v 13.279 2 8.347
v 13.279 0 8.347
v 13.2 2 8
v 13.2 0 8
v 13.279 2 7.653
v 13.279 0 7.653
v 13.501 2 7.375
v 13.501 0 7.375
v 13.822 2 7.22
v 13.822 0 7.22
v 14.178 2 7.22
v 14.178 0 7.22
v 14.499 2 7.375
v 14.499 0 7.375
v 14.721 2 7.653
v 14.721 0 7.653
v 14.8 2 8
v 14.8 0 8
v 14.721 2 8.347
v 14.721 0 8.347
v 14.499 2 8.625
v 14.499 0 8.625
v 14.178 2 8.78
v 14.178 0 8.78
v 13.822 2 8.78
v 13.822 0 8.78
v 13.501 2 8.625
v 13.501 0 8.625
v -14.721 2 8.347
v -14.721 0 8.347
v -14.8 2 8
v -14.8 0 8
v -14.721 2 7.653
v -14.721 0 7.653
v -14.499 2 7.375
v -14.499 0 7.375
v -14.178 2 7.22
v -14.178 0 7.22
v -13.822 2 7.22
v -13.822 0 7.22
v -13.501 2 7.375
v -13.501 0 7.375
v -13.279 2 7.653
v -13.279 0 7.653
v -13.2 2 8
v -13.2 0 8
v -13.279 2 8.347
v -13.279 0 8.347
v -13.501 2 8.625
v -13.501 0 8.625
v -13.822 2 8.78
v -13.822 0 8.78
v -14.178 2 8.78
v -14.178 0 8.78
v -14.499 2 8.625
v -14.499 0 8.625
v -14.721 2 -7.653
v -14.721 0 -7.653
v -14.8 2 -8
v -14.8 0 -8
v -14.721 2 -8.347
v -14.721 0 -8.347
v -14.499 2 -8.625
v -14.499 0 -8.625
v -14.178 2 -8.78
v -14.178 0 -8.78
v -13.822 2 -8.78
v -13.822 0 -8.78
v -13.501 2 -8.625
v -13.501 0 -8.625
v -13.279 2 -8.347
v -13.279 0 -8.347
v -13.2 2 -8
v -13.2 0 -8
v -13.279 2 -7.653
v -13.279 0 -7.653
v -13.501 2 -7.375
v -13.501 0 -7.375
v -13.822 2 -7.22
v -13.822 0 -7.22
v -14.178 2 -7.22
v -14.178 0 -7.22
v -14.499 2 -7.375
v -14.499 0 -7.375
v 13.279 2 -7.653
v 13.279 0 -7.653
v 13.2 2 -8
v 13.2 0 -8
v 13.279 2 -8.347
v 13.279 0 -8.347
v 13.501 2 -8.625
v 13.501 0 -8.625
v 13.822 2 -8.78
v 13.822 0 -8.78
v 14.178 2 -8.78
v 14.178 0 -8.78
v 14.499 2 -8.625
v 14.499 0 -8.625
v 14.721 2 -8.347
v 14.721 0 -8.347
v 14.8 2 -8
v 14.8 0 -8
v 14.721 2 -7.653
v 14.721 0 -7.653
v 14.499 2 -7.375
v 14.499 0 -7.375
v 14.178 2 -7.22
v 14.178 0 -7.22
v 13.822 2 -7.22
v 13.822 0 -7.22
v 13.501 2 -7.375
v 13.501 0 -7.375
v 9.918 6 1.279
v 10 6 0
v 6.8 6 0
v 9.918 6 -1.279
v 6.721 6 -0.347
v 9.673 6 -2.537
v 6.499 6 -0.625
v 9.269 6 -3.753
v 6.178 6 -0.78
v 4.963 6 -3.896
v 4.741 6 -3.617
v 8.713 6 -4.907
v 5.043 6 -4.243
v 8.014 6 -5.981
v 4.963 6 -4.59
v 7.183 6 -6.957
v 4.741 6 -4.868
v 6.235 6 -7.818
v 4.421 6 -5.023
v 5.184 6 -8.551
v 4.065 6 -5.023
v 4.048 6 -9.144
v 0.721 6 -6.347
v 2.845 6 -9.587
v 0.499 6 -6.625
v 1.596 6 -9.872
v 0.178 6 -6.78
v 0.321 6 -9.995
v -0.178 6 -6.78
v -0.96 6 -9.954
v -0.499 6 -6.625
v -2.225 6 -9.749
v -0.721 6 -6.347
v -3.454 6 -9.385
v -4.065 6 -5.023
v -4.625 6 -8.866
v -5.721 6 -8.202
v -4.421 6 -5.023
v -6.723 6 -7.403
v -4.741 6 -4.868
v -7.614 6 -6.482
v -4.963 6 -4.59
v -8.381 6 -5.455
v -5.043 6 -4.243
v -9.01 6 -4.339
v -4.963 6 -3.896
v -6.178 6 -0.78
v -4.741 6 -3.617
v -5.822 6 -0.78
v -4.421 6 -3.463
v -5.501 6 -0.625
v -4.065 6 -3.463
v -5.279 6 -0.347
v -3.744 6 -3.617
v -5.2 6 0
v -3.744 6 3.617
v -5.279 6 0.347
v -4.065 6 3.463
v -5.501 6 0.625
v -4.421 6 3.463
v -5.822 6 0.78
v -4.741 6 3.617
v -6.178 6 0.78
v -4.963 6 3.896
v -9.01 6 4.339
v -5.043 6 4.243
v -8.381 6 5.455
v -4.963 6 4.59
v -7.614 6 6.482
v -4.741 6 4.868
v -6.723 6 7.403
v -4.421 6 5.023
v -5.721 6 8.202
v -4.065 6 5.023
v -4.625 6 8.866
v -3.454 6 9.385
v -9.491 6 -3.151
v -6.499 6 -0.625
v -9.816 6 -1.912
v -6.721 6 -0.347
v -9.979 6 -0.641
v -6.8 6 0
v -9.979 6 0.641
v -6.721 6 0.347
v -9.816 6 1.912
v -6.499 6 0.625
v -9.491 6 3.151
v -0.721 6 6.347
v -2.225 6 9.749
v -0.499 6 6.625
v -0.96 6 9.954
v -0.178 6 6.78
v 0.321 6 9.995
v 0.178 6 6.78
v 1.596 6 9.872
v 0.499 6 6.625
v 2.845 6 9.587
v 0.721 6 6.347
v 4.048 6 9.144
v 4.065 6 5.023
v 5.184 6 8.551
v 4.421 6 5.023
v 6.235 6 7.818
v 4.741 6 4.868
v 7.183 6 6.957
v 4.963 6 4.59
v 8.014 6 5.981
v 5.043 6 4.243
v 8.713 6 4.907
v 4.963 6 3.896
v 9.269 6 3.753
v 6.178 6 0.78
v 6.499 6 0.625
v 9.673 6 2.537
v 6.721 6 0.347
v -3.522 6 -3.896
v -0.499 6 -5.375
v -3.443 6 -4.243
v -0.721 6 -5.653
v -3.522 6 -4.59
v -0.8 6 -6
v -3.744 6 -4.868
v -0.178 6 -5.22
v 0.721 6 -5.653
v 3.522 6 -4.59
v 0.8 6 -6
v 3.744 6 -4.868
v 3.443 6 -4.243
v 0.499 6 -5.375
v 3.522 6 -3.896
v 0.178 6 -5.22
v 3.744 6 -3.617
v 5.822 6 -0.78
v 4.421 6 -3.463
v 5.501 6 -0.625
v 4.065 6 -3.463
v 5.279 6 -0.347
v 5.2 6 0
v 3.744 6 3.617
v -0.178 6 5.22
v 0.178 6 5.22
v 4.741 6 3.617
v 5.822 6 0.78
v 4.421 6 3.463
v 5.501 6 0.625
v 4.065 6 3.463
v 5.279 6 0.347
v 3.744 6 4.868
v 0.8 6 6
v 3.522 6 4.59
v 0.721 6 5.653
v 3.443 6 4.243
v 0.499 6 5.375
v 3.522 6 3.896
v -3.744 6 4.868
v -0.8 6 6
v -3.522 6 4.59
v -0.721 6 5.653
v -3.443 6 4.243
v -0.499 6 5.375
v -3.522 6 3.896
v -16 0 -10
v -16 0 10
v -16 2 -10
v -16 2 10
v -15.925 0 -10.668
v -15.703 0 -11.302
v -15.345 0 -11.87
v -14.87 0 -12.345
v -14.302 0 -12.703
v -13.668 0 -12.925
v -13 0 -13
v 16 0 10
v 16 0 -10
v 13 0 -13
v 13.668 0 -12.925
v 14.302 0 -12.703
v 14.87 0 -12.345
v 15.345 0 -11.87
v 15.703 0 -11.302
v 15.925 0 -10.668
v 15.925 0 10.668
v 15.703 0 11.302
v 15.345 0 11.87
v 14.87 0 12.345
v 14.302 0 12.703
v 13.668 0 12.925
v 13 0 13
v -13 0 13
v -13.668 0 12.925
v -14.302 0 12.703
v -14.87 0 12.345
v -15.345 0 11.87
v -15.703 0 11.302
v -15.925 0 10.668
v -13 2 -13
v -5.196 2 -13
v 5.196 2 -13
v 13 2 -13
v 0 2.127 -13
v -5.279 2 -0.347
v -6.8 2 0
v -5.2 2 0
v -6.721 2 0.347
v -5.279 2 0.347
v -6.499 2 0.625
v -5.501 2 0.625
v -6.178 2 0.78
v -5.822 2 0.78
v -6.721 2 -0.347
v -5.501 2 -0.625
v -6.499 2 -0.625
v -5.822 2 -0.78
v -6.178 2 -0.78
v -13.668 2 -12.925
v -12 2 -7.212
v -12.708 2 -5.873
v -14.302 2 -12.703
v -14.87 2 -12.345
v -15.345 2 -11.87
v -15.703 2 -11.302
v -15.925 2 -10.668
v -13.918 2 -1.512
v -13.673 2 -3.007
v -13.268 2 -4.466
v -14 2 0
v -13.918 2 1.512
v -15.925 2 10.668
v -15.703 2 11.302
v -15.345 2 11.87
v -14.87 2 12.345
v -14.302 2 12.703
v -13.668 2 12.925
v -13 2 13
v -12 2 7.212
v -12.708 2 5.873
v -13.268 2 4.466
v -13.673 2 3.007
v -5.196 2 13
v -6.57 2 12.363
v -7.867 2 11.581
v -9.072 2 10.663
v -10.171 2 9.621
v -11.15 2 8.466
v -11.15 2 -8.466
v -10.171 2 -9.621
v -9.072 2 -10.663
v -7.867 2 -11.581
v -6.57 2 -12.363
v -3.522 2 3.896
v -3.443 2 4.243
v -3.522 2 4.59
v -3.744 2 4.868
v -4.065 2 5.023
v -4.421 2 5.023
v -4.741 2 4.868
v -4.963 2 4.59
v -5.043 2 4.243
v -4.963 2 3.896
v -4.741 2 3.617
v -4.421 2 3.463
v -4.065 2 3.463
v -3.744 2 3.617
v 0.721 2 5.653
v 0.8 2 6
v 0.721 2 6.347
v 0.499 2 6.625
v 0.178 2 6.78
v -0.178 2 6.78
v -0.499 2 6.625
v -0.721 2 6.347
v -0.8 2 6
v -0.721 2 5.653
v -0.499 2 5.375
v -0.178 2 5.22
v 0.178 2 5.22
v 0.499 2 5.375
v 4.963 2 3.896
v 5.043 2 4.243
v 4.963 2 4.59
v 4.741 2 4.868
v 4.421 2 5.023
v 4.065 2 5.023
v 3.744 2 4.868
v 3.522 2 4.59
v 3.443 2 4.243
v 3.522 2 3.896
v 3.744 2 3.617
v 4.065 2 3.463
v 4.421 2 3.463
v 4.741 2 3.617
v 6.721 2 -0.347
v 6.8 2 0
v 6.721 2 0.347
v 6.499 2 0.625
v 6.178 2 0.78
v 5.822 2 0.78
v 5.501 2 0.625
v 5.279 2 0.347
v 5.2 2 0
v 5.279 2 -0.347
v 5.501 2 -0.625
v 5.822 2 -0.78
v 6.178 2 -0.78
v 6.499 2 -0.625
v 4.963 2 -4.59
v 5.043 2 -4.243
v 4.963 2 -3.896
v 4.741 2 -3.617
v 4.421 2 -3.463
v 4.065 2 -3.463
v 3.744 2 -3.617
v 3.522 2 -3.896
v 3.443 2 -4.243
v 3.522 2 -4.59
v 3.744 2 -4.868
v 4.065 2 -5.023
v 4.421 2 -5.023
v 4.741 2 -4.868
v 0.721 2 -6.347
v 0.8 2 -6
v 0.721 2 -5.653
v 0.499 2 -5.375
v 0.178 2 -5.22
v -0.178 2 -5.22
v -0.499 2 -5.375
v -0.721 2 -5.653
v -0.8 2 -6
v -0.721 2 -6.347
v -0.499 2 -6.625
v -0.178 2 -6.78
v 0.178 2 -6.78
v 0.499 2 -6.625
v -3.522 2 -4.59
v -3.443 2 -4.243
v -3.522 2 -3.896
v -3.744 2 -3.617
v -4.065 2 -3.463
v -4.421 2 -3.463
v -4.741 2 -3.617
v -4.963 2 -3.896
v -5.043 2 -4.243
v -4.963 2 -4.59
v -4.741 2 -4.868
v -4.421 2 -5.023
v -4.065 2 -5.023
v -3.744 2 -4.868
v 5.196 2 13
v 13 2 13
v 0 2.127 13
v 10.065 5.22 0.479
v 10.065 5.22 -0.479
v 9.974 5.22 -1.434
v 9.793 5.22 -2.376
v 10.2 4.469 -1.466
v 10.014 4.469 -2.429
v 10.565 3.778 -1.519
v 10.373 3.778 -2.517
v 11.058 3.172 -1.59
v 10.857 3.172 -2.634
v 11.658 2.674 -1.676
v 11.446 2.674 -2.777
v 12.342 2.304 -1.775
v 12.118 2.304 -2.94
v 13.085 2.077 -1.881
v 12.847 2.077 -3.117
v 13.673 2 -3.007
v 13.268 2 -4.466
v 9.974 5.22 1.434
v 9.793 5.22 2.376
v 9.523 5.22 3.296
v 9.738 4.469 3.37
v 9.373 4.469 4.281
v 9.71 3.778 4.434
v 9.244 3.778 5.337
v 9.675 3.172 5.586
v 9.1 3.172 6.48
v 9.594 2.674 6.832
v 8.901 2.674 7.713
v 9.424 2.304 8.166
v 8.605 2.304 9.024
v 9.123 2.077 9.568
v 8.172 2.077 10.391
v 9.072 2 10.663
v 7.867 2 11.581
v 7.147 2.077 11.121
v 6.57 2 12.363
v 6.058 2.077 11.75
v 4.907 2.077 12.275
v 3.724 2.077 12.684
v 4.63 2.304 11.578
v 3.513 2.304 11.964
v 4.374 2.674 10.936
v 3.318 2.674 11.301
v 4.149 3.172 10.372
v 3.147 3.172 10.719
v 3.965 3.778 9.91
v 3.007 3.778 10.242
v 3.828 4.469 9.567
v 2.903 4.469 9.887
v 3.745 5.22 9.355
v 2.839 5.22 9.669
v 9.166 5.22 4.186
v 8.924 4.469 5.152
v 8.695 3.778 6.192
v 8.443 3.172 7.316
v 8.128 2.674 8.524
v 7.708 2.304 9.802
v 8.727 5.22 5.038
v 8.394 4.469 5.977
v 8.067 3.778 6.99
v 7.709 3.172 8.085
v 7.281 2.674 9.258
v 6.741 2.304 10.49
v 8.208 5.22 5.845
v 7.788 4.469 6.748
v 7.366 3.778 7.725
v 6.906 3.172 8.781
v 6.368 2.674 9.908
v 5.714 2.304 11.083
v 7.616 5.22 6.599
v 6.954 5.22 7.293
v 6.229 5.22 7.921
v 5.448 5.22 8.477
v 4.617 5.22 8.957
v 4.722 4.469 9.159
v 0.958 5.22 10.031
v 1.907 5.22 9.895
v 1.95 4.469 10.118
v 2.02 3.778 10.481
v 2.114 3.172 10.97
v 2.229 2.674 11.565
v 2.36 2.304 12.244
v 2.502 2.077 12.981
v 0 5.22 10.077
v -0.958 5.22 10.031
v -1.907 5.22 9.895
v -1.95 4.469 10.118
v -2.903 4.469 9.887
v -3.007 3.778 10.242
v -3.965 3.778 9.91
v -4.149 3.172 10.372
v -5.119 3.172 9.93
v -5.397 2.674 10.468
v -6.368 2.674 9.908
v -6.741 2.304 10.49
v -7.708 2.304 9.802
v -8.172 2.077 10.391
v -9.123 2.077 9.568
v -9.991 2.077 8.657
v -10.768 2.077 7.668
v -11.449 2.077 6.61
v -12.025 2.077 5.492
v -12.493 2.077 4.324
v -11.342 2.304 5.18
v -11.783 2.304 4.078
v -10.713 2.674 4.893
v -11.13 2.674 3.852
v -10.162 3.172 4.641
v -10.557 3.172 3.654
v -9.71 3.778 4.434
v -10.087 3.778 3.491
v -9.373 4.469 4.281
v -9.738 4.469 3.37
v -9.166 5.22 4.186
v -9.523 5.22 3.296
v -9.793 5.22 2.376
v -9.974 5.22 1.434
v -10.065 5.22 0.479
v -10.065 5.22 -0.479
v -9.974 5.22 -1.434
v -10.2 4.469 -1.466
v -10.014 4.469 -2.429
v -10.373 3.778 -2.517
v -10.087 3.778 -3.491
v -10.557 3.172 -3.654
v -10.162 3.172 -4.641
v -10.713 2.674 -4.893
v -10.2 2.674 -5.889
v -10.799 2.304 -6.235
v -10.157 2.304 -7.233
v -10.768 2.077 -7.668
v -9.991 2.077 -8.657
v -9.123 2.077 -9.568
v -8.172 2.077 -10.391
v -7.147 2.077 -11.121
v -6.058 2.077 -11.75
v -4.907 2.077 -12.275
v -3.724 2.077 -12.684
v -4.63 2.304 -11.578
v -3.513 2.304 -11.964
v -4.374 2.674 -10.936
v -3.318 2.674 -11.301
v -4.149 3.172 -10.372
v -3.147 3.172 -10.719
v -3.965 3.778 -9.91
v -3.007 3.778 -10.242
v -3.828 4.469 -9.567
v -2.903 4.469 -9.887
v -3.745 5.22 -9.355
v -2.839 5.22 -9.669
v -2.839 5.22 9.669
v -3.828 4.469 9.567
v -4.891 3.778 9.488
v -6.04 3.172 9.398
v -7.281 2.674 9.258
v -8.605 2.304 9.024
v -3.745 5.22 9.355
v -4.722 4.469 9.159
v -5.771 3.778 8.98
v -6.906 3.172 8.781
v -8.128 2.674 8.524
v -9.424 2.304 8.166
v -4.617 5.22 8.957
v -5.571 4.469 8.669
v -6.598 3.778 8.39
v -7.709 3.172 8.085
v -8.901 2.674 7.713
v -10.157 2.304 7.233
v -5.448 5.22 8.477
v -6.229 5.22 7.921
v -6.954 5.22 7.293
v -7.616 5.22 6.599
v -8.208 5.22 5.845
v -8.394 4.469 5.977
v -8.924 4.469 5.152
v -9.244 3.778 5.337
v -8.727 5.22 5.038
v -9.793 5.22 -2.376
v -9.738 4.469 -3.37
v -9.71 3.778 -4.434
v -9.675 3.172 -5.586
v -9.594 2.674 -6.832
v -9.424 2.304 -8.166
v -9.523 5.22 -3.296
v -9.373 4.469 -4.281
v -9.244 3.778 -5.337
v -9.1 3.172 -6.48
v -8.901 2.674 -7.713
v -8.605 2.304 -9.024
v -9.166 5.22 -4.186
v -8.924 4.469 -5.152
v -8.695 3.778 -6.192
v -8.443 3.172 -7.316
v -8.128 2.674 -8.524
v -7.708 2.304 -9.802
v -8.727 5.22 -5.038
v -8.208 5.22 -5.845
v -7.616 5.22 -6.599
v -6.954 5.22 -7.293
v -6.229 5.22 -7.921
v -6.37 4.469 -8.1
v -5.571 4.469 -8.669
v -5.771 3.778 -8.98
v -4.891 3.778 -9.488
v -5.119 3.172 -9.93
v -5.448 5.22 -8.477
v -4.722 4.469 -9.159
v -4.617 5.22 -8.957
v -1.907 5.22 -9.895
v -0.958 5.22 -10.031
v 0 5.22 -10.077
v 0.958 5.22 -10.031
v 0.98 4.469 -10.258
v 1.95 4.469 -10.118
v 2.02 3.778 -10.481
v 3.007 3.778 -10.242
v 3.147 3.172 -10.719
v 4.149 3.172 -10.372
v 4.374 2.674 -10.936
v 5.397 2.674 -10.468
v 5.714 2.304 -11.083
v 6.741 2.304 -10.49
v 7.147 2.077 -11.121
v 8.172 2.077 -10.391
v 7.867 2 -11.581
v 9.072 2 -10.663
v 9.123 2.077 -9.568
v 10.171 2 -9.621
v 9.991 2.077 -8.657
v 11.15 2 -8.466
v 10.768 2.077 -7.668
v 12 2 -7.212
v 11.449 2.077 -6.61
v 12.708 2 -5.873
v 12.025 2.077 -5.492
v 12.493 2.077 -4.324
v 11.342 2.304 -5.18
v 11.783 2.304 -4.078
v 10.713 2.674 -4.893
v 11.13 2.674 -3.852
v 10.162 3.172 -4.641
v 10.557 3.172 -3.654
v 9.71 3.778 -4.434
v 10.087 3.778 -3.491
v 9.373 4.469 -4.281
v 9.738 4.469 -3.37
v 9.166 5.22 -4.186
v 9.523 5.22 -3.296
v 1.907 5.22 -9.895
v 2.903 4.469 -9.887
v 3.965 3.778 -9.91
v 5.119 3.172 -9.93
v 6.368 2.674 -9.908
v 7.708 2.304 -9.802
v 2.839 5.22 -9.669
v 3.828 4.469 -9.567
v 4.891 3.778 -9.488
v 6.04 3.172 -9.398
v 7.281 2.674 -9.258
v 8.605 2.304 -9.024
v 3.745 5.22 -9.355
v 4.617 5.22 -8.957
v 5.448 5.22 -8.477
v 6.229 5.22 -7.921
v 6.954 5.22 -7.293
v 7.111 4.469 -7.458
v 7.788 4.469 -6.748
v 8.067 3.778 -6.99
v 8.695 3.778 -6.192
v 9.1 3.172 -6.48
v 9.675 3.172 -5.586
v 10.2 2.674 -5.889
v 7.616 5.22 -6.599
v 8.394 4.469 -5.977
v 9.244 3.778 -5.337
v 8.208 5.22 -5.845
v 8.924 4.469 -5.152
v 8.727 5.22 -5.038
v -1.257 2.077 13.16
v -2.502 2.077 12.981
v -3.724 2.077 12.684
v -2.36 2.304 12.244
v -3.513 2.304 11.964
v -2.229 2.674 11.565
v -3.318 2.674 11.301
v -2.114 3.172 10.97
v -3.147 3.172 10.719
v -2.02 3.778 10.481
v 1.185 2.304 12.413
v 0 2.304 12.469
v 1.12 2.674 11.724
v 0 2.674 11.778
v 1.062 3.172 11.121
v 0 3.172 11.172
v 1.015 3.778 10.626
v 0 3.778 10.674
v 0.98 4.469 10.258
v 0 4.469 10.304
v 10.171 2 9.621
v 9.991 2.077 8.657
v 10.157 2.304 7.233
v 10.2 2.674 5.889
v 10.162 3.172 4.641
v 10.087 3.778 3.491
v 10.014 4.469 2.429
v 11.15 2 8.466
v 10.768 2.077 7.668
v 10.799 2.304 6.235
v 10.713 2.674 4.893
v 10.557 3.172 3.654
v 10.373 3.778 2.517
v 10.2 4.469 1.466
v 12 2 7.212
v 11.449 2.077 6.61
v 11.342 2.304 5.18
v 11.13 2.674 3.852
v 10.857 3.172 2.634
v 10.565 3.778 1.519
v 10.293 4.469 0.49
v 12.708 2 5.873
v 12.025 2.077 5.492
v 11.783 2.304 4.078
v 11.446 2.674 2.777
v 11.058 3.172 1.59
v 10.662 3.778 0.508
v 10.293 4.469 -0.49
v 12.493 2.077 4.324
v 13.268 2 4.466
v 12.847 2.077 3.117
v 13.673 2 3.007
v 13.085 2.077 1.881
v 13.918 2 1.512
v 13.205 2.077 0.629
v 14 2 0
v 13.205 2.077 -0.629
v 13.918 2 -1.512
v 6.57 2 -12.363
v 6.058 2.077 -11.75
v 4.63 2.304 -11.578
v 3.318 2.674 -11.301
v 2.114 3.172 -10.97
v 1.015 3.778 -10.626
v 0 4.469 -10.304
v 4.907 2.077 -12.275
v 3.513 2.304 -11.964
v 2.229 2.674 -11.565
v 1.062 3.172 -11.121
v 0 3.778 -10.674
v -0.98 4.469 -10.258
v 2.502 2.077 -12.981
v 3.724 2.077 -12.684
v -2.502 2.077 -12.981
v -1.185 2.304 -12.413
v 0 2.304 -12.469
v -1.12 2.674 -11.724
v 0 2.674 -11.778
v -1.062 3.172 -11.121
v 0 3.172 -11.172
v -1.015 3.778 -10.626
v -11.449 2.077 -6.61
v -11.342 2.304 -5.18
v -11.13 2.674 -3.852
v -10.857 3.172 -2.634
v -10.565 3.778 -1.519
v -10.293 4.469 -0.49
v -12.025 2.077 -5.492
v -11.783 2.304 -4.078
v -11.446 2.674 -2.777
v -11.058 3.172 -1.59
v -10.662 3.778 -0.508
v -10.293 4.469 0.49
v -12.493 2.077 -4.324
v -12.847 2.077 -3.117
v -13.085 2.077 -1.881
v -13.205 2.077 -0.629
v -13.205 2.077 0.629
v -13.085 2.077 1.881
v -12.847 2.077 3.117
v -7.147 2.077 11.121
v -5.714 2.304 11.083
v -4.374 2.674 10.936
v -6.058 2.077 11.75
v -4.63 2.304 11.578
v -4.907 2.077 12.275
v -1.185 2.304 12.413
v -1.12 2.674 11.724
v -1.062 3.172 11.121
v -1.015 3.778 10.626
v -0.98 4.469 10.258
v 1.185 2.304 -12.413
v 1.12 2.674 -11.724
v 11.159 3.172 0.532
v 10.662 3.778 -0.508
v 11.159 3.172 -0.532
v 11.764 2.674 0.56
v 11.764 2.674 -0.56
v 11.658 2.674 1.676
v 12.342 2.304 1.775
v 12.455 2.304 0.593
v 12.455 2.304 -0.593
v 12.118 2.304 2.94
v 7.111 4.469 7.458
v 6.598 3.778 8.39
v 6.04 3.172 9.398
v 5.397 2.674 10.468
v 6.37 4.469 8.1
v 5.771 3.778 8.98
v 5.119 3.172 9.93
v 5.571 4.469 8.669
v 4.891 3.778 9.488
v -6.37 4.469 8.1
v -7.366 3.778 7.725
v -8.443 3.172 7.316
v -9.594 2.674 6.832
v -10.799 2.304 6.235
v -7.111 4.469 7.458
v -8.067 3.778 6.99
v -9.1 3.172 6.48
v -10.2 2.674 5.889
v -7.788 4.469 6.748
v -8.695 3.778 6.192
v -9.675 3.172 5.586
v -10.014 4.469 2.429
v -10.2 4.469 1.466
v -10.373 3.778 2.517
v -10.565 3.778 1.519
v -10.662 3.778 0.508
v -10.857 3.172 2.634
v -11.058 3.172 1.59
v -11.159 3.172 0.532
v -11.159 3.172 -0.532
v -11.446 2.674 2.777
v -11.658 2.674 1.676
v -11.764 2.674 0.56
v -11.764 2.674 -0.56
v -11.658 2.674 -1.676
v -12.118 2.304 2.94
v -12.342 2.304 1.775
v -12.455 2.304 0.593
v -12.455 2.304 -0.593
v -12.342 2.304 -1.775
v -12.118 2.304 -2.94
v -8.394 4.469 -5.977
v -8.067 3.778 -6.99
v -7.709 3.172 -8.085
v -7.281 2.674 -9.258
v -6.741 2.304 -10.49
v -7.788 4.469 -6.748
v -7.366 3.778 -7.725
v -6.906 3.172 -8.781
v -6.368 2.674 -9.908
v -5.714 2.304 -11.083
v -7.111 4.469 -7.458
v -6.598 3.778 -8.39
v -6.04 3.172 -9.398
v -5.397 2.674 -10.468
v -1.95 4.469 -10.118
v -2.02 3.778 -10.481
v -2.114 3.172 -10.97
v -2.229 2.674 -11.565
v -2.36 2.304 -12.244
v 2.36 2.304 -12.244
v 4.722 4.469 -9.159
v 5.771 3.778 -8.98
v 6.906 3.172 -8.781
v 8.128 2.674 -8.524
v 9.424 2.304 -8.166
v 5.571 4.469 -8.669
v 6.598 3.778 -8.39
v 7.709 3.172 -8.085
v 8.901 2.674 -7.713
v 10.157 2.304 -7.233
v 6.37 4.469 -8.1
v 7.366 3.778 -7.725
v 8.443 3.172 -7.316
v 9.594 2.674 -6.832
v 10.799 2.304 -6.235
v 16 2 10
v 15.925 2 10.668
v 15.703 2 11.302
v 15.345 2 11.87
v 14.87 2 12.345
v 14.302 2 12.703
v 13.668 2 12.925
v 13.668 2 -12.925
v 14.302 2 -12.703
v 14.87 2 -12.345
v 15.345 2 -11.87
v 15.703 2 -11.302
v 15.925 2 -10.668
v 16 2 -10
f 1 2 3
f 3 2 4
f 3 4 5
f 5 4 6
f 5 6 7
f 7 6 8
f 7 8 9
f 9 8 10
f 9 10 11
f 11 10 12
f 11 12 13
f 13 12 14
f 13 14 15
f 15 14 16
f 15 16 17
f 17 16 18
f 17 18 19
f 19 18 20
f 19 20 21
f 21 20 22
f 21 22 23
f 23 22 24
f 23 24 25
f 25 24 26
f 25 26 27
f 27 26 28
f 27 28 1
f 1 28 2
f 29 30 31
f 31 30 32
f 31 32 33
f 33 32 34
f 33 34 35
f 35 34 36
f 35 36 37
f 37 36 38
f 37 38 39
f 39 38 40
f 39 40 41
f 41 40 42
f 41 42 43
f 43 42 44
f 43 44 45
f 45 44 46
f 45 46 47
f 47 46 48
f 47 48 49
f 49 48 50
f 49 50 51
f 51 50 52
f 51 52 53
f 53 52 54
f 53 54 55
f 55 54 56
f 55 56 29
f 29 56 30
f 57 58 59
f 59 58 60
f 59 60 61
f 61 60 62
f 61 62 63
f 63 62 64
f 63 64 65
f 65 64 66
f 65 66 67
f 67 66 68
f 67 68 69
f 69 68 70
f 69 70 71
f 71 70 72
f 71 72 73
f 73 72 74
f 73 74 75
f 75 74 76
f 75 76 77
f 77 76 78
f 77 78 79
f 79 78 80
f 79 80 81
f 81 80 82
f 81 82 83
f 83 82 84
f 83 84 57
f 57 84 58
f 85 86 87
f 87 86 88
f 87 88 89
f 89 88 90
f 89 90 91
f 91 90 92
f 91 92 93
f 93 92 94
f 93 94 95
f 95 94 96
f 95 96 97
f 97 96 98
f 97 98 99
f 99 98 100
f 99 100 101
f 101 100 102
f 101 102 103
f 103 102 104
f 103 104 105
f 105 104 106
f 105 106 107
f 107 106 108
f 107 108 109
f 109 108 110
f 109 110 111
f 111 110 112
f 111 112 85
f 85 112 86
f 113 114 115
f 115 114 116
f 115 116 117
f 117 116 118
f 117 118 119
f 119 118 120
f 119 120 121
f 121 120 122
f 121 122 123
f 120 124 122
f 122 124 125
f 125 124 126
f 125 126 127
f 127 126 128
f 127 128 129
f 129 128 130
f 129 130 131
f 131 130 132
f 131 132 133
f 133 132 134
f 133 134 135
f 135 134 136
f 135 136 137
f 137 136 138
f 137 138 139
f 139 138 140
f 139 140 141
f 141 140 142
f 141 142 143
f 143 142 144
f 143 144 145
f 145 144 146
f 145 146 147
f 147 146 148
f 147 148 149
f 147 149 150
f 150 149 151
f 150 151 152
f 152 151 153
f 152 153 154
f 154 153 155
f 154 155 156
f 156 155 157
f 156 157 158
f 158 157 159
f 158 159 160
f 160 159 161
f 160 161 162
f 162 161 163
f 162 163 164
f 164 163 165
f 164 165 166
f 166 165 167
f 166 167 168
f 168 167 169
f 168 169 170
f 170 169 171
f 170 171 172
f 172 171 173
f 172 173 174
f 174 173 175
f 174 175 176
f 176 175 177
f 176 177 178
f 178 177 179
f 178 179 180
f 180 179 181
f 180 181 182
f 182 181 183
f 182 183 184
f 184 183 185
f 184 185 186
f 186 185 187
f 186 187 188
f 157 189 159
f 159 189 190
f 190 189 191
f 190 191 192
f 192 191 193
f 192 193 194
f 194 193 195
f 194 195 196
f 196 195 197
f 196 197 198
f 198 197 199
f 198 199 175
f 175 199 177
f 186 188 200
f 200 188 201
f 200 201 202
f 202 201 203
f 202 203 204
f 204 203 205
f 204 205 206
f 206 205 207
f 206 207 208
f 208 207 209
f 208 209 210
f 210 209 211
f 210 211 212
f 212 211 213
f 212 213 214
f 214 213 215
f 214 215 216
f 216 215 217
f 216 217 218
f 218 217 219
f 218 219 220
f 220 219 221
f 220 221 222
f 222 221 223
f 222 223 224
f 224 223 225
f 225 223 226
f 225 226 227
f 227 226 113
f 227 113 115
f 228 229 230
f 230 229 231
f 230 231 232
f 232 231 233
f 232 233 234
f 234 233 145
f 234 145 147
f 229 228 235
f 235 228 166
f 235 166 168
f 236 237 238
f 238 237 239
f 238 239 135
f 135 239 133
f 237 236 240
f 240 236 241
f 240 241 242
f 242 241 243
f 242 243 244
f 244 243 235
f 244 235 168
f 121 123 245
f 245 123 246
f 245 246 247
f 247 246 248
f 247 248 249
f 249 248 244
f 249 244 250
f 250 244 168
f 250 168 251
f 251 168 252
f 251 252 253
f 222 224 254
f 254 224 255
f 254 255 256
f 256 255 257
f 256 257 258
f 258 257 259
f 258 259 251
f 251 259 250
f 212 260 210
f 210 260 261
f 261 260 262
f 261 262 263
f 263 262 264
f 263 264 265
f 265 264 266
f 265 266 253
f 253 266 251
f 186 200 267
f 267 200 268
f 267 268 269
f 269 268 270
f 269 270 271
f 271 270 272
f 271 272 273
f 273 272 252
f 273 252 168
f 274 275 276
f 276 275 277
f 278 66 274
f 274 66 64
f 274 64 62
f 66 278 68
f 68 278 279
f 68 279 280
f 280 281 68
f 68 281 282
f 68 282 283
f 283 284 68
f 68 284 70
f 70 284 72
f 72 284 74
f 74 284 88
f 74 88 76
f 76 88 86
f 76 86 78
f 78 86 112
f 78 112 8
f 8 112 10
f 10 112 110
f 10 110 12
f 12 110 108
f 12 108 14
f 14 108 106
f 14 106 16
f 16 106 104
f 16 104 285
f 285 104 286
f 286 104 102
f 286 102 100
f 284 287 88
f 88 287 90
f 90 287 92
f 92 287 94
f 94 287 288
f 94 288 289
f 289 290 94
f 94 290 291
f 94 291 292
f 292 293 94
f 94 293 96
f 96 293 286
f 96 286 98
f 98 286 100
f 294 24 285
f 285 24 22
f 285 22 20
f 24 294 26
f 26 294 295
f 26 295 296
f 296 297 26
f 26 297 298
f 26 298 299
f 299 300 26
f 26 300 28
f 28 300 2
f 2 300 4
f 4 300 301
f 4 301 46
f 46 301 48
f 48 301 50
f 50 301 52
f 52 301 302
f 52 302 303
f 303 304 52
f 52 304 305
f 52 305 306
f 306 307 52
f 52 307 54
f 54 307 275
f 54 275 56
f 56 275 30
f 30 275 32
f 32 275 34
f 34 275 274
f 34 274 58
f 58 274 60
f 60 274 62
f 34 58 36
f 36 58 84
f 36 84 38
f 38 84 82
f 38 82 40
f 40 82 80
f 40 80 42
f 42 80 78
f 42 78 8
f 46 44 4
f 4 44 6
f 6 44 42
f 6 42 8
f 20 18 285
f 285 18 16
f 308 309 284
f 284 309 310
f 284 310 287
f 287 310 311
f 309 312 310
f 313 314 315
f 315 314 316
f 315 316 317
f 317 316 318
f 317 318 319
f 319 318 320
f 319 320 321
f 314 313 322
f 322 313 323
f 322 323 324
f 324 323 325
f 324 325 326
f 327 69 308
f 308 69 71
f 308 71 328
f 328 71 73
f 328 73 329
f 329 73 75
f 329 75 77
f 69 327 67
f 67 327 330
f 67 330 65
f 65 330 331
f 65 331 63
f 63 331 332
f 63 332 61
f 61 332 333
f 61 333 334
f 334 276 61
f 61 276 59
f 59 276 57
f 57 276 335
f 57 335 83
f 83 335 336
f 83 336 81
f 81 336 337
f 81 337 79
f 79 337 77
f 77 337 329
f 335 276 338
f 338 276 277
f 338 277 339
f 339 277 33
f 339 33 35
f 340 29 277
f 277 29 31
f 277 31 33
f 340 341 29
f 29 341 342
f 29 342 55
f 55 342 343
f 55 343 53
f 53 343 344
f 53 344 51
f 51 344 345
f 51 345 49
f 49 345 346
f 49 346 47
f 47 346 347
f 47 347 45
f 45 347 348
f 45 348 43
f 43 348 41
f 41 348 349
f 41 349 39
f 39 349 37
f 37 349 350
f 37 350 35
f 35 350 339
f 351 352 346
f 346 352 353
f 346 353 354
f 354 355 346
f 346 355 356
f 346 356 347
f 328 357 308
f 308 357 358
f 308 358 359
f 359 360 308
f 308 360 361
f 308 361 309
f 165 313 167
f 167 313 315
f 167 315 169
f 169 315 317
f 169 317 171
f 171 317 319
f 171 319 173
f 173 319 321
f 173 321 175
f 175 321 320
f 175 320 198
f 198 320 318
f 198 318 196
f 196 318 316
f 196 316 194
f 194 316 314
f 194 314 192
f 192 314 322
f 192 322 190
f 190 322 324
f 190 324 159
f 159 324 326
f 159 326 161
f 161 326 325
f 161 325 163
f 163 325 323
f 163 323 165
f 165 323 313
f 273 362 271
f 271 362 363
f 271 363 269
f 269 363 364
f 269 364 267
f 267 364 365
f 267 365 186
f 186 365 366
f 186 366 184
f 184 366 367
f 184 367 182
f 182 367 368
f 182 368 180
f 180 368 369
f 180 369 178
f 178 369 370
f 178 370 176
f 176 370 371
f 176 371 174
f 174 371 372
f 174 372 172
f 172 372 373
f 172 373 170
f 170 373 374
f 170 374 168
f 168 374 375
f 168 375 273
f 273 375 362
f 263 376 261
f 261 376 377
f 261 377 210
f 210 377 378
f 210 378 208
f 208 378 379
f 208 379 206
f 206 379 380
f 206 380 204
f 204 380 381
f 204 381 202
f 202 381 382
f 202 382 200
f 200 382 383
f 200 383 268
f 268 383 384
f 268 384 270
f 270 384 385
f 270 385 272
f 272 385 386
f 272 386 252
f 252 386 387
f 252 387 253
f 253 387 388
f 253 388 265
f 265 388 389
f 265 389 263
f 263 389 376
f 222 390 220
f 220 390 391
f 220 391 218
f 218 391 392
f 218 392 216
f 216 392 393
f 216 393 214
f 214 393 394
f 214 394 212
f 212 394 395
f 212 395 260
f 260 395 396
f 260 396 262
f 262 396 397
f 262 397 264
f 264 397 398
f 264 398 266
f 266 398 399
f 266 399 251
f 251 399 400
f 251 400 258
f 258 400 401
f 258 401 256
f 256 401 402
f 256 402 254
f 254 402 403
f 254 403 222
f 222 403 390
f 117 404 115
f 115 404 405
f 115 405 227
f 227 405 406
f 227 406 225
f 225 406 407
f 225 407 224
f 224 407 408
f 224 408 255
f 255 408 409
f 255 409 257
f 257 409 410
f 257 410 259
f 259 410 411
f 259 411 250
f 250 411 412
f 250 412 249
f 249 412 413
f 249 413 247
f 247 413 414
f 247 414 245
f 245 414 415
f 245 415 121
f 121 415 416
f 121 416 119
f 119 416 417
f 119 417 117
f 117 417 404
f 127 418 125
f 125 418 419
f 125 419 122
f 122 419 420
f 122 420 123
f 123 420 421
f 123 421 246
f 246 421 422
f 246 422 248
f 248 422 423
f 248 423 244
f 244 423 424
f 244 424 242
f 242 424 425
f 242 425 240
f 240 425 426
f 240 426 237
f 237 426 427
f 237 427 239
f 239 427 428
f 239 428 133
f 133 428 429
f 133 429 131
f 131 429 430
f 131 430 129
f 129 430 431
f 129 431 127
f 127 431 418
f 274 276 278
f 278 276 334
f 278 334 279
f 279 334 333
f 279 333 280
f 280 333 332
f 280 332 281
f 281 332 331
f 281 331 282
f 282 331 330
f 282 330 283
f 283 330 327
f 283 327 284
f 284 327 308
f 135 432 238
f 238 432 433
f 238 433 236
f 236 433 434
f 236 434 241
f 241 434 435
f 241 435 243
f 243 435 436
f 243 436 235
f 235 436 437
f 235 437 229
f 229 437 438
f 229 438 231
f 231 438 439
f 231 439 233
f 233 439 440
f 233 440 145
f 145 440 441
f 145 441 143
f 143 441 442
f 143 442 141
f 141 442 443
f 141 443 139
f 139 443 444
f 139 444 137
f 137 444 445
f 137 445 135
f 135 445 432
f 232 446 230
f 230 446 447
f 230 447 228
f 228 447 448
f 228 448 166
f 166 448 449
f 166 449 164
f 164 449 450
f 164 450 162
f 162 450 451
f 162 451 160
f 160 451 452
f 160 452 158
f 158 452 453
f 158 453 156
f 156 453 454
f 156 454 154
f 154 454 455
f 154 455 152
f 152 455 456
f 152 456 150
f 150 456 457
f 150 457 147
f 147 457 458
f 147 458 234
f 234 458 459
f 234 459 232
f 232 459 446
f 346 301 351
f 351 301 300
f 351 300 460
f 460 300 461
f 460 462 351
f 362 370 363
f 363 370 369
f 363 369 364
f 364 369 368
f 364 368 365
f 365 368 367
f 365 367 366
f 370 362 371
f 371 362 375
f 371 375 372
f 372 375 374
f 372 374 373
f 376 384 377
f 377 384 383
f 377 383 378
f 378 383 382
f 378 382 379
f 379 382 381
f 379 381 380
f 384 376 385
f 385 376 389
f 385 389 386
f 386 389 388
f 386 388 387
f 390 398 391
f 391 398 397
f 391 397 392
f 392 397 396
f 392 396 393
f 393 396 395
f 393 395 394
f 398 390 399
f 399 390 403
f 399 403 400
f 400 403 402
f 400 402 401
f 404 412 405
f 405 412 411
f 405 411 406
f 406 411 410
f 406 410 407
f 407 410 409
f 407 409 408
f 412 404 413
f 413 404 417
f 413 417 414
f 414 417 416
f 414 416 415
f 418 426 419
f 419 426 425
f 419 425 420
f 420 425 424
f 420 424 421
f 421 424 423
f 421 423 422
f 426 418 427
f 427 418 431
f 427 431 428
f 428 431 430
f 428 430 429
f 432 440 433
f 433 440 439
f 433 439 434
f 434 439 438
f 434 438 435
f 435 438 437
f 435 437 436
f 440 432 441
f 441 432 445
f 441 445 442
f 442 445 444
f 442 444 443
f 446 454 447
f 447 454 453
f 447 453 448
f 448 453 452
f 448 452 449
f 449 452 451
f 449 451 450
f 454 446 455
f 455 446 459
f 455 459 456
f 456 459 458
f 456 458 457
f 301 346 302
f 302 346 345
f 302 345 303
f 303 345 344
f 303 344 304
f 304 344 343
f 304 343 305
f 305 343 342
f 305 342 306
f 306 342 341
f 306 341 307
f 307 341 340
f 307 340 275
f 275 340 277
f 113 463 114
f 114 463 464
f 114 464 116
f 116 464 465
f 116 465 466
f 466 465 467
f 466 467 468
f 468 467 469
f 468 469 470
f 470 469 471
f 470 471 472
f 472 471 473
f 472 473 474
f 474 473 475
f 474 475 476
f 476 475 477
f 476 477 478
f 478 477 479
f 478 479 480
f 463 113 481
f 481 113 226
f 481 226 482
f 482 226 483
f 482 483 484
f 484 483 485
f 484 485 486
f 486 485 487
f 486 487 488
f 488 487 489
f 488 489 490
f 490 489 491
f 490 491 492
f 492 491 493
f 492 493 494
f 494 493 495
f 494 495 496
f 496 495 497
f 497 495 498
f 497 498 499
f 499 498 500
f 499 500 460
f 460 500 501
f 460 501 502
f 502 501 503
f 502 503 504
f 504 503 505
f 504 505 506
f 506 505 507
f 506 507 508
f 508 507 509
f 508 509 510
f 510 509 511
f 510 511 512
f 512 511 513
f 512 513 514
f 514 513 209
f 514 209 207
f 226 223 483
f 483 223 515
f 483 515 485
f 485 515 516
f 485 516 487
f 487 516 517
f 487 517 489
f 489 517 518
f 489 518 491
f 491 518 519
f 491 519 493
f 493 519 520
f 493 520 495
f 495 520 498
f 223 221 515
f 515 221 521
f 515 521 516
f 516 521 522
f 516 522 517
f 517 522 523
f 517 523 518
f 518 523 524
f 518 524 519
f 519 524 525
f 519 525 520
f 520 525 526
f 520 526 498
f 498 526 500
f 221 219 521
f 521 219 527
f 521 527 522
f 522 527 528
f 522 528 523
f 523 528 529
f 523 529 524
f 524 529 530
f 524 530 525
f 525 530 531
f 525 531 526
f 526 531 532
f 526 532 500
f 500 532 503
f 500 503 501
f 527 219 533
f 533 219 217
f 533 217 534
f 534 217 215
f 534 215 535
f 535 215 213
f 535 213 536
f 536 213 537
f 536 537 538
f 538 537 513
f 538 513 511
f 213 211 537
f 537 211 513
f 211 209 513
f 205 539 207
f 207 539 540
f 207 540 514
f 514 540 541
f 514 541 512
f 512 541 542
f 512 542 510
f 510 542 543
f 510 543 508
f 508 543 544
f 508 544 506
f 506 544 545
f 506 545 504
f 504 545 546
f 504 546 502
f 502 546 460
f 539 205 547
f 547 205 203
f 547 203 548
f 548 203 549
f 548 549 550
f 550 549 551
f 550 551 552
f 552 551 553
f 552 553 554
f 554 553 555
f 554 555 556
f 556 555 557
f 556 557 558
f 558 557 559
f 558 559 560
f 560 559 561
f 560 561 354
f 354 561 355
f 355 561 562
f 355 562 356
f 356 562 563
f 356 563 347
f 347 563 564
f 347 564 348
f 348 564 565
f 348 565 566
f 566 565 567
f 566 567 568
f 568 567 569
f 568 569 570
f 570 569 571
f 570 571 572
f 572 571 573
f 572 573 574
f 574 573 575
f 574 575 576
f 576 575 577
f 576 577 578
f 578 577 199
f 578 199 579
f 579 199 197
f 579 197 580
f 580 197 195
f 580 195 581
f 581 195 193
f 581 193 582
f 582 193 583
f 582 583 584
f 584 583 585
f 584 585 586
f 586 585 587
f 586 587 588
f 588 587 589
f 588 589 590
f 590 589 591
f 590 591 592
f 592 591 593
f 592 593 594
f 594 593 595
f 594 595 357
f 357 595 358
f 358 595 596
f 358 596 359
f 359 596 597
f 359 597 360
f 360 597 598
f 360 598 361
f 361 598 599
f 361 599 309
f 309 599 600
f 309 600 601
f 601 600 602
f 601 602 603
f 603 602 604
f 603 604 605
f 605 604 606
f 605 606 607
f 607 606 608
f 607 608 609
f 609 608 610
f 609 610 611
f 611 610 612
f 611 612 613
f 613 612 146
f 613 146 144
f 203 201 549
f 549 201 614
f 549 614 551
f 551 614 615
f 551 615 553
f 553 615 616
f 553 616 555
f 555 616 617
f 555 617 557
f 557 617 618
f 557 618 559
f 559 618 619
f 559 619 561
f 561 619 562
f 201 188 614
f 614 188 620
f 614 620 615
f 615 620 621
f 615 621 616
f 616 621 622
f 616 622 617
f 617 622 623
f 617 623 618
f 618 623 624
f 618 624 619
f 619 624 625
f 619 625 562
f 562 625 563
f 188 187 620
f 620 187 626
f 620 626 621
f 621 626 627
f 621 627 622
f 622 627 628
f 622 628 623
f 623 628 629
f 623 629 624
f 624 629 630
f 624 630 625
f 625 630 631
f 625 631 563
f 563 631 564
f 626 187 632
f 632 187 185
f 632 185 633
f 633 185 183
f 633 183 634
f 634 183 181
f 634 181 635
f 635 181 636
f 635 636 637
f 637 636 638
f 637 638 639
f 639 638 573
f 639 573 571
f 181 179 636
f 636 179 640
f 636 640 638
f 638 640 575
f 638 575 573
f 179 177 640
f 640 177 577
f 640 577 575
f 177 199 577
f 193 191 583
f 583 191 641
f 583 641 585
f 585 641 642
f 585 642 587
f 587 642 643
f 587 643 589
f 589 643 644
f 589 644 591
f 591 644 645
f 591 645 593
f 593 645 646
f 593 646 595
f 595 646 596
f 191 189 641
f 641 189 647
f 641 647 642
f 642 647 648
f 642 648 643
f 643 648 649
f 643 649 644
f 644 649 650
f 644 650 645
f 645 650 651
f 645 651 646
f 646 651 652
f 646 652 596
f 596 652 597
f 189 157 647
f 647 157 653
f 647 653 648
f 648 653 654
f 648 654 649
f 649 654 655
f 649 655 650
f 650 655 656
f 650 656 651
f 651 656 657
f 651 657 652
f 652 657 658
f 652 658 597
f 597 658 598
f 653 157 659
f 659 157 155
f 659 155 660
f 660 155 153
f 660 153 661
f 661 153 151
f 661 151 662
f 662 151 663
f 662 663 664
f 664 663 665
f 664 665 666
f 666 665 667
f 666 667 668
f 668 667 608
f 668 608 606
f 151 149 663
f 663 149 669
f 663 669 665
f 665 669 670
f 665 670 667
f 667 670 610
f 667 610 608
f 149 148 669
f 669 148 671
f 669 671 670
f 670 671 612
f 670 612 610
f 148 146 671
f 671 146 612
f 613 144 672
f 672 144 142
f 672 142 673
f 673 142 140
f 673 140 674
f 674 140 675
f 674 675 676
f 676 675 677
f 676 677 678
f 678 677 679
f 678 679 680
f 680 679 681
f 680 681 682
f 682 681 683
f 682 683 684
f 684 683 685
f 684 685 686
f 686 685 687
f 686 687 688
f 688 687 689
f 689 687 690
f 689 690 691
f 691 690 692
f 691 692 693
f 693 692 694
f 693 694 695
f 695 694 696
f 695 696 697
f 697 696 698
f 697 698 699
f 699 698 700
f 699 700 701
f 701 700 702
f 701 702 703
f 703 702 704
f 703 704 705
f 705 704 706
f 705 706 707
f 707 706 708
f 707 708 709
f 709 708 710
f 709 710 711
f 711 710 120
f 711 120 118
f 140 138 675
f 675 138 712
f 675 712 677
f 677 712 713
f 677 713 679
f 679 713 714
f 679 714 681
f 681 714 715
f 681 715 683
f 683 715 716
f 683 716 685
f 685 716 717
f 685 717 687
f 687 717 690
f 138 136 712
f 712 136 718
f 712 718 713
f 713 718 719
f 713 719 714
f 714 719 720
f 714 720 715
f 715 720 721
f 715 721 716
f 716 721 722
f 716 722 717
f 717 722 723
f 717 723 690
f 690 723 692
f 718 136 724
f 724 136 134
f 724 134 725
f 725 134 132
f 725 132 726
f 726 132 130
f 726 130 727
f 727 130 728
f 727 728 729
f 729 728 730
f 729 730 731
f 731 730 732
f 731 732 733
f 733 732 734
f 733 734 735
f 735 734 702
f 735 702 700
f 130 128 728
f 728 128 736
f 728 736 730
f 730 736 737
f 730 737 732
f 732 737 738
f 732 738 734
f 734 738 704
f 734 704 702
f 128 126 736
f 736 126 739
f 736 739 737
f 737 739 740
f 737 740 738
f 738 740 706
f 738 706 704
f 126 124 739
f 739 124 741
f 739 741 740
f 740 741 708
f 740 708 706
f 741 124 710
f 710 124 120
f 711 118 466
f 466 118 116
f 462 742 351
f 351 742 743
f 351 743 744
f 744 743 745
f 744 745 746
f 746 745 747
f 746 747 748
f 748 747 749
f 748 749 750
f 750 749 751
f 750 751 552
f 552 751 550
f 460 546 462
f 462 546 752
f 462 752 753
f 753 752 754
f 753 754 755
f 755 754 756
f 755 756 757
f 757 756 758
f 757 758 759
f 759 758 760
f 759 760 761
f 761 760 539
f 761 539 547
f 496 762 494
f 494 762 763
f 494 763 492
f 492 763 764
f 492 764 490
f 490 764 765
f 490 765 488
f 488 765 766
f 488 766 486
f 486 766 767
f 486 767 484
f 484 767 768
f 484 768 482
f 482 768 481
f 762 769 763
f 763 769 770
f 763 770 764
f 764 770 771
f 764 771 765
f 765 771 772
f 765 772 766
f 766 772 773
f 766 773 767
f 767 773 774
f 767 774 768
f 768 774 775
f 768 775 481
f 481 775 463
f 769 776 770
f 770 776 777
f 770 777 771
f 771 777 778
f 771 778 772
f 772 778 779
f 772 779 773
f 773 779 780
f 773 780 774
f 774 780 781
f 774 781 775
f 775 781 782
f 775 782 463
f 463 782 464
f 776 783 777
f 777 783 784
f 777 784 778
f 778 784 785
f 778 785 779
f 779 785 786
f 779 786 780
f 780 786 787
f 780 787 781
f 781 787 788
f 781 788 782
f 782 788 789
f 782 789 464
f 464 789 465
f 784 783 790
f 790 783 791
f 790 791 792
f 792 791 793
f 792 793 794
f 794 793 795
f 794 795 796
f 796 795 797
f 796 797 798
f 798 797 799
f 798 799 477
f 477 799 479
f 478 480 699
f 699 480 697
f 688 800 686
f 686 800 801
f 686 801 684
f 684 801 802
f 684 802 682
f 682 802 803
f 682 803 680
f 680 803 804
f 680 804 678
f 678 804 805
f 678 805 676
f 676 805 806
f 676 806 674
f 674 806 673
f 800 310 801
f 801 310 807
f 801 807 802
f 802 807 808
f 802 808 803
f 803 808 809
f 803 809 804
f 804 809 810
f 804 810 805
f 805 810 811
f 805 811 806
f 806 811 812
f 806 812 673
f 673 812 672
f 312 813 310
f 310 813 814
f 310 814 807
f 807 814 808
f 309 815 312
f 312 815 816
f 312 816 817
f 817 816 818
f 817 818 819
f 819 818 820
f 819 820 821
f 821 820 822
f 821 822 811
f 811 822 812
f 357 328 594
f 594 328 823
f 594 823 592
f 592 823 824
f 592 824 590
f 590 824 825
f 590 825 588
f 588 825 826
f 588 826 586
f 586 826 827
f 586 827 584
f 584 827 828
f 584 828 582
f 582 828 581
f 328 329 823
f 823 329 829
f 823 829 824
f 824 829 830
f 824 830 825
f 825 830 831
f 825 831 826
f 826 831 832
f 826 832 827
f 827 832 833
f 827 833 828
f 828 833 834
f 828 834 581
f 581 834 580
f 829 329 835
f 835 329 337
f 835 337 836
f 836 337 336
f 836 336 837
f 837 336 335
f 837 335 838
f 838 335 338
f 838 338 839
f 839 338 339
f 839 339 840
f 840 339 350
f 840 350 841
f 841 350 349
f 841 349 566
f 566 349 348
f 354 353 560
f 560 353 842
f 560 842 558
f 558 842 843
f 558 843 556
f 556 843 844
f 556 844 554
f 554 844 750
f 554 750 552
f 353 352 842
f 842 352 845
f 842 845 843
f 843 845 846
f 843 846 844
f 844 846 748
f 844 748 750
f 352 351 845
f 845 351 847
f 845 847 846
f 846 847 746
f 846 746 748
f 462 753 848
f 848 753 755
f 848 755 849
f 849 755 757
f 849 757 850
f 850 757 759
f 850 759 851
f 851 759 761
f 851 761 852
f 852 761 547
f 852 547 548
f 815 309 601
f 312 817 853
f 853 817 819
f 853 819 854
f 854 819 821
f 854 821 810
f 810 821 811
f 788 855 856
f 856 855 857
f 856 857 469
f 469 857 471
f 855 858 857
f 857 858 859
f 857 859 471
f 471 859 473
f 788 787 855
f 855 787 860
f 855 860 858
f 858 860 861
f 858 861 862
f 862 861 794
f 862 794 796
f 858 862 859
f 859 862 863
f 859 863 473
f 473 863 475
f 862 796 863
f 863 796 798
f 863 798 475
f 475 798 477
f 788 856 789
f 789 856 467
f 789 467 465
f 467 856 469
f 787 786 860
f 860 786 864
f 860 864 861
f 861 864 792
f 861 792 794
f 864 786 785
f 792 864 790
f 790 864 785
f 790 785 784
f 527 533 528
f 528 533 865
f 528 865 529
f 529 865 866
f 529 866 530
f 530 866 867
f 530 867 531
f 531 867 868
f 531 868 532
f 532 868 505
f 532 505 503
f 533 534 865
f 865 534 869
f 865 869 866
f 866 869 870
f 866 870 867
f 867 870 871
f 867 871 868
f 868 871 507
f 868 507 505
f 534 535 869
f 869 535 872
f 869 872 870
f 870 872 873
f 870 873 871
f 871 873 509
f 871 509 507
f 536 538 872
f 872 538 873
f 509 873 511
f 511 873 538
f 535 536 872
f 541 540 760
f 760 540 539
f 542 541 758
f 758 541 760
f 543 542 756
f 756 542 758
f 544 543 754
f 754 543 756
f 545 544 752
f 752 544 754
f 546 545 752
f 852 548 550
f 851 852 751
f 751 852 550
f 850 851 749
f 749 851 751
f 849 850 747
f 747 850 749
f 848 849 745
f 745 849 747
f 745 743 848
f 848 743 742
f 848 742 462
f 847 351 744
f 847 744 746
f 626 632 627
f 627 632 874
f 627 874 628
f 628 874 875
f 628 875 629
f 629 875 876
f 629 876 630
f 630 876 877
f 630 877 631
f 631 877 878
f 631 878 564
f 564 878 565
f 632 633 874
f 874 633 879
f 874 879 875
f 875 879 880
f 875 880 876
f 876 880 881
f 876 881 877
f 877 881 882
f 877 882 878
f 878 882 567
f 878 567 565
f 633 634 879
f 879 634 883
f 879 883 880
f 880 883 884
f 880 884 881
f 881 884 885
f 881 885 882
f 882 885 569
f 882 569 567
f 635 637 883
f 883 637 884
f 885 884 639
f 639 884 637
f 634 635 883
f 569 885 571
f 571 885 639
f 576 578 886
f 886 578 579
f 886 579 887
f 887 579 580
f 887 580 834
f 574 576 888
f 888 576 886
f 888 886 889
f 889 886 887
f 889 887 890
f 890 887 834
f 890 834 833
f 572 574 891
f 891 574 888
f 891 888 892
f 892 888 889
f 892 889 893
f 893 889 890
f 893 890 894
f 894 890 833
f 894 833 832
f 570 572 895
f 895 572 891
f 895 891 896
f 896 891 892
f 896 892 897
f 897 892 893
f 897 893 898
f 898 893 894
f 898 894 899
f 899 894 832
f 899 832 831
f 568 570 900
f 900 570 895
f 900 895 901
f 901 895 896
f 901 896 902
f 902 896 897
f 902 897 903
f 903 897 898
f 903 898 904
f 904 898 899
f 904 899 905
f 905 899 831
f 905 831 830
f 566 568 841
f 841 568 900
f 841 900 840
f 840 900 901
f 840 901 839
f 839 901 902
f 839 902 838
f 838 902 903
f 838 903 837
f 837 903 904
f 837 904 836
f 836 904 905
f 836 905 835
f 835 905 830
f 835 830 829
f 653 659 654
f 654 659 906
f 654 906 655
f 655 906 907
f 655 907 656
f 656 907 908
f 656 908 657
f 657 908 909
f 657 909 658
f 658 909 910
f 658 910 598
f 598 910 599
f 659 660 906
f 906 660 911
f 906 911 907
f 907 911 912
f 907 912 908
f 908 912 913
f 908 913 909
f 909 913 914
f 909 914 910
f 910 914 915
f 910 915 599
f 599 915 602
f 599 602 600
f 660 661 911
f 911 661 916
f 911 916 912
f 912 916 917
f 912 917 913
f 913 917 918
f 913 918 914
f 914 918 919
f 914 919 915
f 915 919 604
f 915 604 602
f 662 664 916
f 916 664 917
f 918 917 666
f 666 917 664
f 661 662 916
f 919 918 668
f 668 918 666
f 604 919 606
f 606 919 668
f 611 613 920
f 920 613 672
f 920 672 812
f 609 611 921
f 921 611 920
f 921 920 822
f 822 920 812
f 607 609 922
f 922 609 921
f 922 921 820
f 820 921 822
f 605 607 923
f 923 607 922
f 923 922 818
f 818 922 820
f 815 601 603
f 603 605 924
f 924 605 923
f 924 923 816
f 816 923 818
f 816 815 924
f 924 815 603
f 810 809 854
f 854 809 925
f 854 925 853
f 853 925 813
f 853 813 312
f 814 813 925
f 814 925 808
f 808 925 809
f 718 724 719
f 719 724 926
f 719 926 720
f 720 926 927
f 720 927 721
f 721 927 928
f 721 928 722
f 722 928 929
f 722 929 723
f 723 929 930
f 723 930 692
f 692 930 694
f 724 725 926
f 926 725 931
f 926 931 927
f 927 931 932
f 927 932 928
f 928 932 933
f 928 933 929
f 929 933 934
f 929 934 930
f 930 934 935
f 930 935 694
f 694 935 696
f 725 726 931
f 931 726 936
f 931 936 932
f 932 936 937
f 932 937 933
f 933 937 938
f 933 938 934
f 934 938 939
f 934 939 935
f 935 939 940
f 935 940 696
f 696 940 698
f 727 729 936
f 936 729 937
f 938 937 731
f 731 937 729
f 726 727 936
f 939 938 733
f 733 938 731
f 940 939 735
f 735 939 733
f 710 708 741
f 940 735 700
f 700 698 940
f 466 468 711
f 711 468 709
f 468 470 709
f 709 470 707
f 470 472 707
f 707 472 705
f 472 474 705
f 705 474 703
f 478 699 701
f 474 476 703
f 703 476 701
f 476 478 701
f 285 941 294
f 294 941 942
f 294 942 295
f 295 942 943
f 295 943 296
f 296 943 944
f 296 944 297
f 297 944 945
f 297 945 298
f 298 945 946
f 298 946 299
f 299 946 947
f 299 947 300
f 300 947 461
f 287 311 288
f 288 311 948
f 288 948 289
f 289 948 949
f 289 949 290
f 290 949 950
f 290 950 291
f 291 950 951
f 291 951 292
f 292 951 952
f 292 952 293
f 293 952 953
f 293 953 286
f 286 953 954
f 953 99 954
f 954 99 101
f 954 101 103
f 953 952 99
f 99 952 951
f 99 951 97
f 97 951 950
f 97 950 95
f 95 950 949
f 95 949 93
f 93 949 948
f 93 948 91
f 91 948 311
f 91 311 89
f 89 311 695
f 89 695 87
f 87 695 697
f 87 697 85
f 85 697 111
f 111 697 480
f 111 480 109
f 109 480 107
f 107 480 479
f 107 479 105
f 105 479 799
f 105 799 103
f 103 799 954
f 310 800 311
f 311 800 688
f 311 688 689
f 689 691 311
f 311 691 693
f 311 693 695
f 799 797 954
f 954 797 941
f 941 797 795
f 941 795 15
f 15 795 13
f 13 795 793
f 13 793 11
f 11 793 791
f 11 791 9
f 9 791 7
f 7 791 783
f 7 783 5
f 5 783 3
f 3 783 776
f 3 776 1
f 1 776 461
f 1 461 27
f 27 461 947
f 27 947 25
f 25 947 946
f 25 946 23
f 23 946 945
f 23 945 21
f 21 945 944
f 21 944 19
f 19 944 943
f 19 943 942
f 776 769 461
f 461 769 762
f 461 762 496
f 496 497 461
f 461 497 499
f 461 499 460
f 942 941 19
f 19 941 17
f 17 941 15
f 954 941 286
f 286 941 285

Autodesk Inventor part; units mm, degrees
ref_plane "YZ Plane" through (0, 0, 0) normal (1, 0, 0) x (0, 1, 0)
ref_plane "XZ Plane" through (0, 0, 0) normal (0, 1, 0) x (-1, 0, 0)
ref_plane "XY Plane" through (0, 0, 0) normal (0, 0, 1) x (1, 0, 0)
sketch "スケッチ1" plane through (0, 0, 0) normal (0, 1, 0) x (-1, 0, 0)
  line L0 (-16, -13) -> (16, -13)
  line L1 (16, -13) -> (16, 13)
  line L2 (16, 13) -> (-16, 13)
  line L3 (-16, 13) -> (-16, -13)
  line L4 (-16, -13) -> (16, 13) construction
  line L5 (16, -13) -> (-16, 13) construction
  line L6 (-14, -8) -> (14, -8) construction
  line L7 (14, -8) -> (14, 8)
  line L8 (14, 8) -> (-14, 8) construction
  line L9 (-14, 8) -> (-14, -8)
  line L10 (-14, -8) -> (14, 8) construction
  line L11 (14, -8) -> (-14, 8) construction
  circle A0 centre (14, -8) radius 0.8
  circle A1 centre (14, 8) radius 0.8
  circle A2 centre (-14, -8) radius 0.8
  circle A3 centre (-14, 8) radius 0.8
  point P0 (0, 0)
  dimension "d0" = 32
  dimension "d1" = 26
  dimension "d2" = 28
  dimension "d3" = 16
  dimension "d4" = 1.6
  dimension "d5" = 1.6
  dimension "d6" = 1.6
  dimension "d7" = 1.6
extrude "押し出し1" add sketch "スケッチ1" along normal blind 2
sketch "スケッチ2" plane through (0, 2, 0) normal (0, 1, 0) x (1, 0, 0)
  circle A0 centre (0, 0) radius 6 construction
  circle A1 centre (0, 0) radius 10
  circle A2 centre (-6, 0) radius 0.8
  circle A3 centre (-4.2426, -4.2426) radius 0.8
  circle A4 centre (0, -6) radius 0.8
  circle A5 centre (4.2426, -4.2426) radius 0.8
  circle A6 centre (6, 0) radius 0.8
  circle A7 centre (4.2426, 4.2426) radius 0.8
  circle A8 centre (0, 6) radius 0.8
  circle A9 centre (-4.2426, 4.2426) radius 0.8
  dimension "d10" = 12
  dimension "d11" = 20
  dimension "d12" = 1.6
  dimension "d15" = 360
extrude "押し出し2" add sketch "スケッチ2" along normal blind 4
fillet "フィレット1" radius 4 1 edges at (-10, 2, 0)
fillet "フィレット2" radius 3 4 edges at (16, 1, 13) (16, 1, -13) (-16, 1, 13) (-16, 1, -13)
properties part number "neck"
